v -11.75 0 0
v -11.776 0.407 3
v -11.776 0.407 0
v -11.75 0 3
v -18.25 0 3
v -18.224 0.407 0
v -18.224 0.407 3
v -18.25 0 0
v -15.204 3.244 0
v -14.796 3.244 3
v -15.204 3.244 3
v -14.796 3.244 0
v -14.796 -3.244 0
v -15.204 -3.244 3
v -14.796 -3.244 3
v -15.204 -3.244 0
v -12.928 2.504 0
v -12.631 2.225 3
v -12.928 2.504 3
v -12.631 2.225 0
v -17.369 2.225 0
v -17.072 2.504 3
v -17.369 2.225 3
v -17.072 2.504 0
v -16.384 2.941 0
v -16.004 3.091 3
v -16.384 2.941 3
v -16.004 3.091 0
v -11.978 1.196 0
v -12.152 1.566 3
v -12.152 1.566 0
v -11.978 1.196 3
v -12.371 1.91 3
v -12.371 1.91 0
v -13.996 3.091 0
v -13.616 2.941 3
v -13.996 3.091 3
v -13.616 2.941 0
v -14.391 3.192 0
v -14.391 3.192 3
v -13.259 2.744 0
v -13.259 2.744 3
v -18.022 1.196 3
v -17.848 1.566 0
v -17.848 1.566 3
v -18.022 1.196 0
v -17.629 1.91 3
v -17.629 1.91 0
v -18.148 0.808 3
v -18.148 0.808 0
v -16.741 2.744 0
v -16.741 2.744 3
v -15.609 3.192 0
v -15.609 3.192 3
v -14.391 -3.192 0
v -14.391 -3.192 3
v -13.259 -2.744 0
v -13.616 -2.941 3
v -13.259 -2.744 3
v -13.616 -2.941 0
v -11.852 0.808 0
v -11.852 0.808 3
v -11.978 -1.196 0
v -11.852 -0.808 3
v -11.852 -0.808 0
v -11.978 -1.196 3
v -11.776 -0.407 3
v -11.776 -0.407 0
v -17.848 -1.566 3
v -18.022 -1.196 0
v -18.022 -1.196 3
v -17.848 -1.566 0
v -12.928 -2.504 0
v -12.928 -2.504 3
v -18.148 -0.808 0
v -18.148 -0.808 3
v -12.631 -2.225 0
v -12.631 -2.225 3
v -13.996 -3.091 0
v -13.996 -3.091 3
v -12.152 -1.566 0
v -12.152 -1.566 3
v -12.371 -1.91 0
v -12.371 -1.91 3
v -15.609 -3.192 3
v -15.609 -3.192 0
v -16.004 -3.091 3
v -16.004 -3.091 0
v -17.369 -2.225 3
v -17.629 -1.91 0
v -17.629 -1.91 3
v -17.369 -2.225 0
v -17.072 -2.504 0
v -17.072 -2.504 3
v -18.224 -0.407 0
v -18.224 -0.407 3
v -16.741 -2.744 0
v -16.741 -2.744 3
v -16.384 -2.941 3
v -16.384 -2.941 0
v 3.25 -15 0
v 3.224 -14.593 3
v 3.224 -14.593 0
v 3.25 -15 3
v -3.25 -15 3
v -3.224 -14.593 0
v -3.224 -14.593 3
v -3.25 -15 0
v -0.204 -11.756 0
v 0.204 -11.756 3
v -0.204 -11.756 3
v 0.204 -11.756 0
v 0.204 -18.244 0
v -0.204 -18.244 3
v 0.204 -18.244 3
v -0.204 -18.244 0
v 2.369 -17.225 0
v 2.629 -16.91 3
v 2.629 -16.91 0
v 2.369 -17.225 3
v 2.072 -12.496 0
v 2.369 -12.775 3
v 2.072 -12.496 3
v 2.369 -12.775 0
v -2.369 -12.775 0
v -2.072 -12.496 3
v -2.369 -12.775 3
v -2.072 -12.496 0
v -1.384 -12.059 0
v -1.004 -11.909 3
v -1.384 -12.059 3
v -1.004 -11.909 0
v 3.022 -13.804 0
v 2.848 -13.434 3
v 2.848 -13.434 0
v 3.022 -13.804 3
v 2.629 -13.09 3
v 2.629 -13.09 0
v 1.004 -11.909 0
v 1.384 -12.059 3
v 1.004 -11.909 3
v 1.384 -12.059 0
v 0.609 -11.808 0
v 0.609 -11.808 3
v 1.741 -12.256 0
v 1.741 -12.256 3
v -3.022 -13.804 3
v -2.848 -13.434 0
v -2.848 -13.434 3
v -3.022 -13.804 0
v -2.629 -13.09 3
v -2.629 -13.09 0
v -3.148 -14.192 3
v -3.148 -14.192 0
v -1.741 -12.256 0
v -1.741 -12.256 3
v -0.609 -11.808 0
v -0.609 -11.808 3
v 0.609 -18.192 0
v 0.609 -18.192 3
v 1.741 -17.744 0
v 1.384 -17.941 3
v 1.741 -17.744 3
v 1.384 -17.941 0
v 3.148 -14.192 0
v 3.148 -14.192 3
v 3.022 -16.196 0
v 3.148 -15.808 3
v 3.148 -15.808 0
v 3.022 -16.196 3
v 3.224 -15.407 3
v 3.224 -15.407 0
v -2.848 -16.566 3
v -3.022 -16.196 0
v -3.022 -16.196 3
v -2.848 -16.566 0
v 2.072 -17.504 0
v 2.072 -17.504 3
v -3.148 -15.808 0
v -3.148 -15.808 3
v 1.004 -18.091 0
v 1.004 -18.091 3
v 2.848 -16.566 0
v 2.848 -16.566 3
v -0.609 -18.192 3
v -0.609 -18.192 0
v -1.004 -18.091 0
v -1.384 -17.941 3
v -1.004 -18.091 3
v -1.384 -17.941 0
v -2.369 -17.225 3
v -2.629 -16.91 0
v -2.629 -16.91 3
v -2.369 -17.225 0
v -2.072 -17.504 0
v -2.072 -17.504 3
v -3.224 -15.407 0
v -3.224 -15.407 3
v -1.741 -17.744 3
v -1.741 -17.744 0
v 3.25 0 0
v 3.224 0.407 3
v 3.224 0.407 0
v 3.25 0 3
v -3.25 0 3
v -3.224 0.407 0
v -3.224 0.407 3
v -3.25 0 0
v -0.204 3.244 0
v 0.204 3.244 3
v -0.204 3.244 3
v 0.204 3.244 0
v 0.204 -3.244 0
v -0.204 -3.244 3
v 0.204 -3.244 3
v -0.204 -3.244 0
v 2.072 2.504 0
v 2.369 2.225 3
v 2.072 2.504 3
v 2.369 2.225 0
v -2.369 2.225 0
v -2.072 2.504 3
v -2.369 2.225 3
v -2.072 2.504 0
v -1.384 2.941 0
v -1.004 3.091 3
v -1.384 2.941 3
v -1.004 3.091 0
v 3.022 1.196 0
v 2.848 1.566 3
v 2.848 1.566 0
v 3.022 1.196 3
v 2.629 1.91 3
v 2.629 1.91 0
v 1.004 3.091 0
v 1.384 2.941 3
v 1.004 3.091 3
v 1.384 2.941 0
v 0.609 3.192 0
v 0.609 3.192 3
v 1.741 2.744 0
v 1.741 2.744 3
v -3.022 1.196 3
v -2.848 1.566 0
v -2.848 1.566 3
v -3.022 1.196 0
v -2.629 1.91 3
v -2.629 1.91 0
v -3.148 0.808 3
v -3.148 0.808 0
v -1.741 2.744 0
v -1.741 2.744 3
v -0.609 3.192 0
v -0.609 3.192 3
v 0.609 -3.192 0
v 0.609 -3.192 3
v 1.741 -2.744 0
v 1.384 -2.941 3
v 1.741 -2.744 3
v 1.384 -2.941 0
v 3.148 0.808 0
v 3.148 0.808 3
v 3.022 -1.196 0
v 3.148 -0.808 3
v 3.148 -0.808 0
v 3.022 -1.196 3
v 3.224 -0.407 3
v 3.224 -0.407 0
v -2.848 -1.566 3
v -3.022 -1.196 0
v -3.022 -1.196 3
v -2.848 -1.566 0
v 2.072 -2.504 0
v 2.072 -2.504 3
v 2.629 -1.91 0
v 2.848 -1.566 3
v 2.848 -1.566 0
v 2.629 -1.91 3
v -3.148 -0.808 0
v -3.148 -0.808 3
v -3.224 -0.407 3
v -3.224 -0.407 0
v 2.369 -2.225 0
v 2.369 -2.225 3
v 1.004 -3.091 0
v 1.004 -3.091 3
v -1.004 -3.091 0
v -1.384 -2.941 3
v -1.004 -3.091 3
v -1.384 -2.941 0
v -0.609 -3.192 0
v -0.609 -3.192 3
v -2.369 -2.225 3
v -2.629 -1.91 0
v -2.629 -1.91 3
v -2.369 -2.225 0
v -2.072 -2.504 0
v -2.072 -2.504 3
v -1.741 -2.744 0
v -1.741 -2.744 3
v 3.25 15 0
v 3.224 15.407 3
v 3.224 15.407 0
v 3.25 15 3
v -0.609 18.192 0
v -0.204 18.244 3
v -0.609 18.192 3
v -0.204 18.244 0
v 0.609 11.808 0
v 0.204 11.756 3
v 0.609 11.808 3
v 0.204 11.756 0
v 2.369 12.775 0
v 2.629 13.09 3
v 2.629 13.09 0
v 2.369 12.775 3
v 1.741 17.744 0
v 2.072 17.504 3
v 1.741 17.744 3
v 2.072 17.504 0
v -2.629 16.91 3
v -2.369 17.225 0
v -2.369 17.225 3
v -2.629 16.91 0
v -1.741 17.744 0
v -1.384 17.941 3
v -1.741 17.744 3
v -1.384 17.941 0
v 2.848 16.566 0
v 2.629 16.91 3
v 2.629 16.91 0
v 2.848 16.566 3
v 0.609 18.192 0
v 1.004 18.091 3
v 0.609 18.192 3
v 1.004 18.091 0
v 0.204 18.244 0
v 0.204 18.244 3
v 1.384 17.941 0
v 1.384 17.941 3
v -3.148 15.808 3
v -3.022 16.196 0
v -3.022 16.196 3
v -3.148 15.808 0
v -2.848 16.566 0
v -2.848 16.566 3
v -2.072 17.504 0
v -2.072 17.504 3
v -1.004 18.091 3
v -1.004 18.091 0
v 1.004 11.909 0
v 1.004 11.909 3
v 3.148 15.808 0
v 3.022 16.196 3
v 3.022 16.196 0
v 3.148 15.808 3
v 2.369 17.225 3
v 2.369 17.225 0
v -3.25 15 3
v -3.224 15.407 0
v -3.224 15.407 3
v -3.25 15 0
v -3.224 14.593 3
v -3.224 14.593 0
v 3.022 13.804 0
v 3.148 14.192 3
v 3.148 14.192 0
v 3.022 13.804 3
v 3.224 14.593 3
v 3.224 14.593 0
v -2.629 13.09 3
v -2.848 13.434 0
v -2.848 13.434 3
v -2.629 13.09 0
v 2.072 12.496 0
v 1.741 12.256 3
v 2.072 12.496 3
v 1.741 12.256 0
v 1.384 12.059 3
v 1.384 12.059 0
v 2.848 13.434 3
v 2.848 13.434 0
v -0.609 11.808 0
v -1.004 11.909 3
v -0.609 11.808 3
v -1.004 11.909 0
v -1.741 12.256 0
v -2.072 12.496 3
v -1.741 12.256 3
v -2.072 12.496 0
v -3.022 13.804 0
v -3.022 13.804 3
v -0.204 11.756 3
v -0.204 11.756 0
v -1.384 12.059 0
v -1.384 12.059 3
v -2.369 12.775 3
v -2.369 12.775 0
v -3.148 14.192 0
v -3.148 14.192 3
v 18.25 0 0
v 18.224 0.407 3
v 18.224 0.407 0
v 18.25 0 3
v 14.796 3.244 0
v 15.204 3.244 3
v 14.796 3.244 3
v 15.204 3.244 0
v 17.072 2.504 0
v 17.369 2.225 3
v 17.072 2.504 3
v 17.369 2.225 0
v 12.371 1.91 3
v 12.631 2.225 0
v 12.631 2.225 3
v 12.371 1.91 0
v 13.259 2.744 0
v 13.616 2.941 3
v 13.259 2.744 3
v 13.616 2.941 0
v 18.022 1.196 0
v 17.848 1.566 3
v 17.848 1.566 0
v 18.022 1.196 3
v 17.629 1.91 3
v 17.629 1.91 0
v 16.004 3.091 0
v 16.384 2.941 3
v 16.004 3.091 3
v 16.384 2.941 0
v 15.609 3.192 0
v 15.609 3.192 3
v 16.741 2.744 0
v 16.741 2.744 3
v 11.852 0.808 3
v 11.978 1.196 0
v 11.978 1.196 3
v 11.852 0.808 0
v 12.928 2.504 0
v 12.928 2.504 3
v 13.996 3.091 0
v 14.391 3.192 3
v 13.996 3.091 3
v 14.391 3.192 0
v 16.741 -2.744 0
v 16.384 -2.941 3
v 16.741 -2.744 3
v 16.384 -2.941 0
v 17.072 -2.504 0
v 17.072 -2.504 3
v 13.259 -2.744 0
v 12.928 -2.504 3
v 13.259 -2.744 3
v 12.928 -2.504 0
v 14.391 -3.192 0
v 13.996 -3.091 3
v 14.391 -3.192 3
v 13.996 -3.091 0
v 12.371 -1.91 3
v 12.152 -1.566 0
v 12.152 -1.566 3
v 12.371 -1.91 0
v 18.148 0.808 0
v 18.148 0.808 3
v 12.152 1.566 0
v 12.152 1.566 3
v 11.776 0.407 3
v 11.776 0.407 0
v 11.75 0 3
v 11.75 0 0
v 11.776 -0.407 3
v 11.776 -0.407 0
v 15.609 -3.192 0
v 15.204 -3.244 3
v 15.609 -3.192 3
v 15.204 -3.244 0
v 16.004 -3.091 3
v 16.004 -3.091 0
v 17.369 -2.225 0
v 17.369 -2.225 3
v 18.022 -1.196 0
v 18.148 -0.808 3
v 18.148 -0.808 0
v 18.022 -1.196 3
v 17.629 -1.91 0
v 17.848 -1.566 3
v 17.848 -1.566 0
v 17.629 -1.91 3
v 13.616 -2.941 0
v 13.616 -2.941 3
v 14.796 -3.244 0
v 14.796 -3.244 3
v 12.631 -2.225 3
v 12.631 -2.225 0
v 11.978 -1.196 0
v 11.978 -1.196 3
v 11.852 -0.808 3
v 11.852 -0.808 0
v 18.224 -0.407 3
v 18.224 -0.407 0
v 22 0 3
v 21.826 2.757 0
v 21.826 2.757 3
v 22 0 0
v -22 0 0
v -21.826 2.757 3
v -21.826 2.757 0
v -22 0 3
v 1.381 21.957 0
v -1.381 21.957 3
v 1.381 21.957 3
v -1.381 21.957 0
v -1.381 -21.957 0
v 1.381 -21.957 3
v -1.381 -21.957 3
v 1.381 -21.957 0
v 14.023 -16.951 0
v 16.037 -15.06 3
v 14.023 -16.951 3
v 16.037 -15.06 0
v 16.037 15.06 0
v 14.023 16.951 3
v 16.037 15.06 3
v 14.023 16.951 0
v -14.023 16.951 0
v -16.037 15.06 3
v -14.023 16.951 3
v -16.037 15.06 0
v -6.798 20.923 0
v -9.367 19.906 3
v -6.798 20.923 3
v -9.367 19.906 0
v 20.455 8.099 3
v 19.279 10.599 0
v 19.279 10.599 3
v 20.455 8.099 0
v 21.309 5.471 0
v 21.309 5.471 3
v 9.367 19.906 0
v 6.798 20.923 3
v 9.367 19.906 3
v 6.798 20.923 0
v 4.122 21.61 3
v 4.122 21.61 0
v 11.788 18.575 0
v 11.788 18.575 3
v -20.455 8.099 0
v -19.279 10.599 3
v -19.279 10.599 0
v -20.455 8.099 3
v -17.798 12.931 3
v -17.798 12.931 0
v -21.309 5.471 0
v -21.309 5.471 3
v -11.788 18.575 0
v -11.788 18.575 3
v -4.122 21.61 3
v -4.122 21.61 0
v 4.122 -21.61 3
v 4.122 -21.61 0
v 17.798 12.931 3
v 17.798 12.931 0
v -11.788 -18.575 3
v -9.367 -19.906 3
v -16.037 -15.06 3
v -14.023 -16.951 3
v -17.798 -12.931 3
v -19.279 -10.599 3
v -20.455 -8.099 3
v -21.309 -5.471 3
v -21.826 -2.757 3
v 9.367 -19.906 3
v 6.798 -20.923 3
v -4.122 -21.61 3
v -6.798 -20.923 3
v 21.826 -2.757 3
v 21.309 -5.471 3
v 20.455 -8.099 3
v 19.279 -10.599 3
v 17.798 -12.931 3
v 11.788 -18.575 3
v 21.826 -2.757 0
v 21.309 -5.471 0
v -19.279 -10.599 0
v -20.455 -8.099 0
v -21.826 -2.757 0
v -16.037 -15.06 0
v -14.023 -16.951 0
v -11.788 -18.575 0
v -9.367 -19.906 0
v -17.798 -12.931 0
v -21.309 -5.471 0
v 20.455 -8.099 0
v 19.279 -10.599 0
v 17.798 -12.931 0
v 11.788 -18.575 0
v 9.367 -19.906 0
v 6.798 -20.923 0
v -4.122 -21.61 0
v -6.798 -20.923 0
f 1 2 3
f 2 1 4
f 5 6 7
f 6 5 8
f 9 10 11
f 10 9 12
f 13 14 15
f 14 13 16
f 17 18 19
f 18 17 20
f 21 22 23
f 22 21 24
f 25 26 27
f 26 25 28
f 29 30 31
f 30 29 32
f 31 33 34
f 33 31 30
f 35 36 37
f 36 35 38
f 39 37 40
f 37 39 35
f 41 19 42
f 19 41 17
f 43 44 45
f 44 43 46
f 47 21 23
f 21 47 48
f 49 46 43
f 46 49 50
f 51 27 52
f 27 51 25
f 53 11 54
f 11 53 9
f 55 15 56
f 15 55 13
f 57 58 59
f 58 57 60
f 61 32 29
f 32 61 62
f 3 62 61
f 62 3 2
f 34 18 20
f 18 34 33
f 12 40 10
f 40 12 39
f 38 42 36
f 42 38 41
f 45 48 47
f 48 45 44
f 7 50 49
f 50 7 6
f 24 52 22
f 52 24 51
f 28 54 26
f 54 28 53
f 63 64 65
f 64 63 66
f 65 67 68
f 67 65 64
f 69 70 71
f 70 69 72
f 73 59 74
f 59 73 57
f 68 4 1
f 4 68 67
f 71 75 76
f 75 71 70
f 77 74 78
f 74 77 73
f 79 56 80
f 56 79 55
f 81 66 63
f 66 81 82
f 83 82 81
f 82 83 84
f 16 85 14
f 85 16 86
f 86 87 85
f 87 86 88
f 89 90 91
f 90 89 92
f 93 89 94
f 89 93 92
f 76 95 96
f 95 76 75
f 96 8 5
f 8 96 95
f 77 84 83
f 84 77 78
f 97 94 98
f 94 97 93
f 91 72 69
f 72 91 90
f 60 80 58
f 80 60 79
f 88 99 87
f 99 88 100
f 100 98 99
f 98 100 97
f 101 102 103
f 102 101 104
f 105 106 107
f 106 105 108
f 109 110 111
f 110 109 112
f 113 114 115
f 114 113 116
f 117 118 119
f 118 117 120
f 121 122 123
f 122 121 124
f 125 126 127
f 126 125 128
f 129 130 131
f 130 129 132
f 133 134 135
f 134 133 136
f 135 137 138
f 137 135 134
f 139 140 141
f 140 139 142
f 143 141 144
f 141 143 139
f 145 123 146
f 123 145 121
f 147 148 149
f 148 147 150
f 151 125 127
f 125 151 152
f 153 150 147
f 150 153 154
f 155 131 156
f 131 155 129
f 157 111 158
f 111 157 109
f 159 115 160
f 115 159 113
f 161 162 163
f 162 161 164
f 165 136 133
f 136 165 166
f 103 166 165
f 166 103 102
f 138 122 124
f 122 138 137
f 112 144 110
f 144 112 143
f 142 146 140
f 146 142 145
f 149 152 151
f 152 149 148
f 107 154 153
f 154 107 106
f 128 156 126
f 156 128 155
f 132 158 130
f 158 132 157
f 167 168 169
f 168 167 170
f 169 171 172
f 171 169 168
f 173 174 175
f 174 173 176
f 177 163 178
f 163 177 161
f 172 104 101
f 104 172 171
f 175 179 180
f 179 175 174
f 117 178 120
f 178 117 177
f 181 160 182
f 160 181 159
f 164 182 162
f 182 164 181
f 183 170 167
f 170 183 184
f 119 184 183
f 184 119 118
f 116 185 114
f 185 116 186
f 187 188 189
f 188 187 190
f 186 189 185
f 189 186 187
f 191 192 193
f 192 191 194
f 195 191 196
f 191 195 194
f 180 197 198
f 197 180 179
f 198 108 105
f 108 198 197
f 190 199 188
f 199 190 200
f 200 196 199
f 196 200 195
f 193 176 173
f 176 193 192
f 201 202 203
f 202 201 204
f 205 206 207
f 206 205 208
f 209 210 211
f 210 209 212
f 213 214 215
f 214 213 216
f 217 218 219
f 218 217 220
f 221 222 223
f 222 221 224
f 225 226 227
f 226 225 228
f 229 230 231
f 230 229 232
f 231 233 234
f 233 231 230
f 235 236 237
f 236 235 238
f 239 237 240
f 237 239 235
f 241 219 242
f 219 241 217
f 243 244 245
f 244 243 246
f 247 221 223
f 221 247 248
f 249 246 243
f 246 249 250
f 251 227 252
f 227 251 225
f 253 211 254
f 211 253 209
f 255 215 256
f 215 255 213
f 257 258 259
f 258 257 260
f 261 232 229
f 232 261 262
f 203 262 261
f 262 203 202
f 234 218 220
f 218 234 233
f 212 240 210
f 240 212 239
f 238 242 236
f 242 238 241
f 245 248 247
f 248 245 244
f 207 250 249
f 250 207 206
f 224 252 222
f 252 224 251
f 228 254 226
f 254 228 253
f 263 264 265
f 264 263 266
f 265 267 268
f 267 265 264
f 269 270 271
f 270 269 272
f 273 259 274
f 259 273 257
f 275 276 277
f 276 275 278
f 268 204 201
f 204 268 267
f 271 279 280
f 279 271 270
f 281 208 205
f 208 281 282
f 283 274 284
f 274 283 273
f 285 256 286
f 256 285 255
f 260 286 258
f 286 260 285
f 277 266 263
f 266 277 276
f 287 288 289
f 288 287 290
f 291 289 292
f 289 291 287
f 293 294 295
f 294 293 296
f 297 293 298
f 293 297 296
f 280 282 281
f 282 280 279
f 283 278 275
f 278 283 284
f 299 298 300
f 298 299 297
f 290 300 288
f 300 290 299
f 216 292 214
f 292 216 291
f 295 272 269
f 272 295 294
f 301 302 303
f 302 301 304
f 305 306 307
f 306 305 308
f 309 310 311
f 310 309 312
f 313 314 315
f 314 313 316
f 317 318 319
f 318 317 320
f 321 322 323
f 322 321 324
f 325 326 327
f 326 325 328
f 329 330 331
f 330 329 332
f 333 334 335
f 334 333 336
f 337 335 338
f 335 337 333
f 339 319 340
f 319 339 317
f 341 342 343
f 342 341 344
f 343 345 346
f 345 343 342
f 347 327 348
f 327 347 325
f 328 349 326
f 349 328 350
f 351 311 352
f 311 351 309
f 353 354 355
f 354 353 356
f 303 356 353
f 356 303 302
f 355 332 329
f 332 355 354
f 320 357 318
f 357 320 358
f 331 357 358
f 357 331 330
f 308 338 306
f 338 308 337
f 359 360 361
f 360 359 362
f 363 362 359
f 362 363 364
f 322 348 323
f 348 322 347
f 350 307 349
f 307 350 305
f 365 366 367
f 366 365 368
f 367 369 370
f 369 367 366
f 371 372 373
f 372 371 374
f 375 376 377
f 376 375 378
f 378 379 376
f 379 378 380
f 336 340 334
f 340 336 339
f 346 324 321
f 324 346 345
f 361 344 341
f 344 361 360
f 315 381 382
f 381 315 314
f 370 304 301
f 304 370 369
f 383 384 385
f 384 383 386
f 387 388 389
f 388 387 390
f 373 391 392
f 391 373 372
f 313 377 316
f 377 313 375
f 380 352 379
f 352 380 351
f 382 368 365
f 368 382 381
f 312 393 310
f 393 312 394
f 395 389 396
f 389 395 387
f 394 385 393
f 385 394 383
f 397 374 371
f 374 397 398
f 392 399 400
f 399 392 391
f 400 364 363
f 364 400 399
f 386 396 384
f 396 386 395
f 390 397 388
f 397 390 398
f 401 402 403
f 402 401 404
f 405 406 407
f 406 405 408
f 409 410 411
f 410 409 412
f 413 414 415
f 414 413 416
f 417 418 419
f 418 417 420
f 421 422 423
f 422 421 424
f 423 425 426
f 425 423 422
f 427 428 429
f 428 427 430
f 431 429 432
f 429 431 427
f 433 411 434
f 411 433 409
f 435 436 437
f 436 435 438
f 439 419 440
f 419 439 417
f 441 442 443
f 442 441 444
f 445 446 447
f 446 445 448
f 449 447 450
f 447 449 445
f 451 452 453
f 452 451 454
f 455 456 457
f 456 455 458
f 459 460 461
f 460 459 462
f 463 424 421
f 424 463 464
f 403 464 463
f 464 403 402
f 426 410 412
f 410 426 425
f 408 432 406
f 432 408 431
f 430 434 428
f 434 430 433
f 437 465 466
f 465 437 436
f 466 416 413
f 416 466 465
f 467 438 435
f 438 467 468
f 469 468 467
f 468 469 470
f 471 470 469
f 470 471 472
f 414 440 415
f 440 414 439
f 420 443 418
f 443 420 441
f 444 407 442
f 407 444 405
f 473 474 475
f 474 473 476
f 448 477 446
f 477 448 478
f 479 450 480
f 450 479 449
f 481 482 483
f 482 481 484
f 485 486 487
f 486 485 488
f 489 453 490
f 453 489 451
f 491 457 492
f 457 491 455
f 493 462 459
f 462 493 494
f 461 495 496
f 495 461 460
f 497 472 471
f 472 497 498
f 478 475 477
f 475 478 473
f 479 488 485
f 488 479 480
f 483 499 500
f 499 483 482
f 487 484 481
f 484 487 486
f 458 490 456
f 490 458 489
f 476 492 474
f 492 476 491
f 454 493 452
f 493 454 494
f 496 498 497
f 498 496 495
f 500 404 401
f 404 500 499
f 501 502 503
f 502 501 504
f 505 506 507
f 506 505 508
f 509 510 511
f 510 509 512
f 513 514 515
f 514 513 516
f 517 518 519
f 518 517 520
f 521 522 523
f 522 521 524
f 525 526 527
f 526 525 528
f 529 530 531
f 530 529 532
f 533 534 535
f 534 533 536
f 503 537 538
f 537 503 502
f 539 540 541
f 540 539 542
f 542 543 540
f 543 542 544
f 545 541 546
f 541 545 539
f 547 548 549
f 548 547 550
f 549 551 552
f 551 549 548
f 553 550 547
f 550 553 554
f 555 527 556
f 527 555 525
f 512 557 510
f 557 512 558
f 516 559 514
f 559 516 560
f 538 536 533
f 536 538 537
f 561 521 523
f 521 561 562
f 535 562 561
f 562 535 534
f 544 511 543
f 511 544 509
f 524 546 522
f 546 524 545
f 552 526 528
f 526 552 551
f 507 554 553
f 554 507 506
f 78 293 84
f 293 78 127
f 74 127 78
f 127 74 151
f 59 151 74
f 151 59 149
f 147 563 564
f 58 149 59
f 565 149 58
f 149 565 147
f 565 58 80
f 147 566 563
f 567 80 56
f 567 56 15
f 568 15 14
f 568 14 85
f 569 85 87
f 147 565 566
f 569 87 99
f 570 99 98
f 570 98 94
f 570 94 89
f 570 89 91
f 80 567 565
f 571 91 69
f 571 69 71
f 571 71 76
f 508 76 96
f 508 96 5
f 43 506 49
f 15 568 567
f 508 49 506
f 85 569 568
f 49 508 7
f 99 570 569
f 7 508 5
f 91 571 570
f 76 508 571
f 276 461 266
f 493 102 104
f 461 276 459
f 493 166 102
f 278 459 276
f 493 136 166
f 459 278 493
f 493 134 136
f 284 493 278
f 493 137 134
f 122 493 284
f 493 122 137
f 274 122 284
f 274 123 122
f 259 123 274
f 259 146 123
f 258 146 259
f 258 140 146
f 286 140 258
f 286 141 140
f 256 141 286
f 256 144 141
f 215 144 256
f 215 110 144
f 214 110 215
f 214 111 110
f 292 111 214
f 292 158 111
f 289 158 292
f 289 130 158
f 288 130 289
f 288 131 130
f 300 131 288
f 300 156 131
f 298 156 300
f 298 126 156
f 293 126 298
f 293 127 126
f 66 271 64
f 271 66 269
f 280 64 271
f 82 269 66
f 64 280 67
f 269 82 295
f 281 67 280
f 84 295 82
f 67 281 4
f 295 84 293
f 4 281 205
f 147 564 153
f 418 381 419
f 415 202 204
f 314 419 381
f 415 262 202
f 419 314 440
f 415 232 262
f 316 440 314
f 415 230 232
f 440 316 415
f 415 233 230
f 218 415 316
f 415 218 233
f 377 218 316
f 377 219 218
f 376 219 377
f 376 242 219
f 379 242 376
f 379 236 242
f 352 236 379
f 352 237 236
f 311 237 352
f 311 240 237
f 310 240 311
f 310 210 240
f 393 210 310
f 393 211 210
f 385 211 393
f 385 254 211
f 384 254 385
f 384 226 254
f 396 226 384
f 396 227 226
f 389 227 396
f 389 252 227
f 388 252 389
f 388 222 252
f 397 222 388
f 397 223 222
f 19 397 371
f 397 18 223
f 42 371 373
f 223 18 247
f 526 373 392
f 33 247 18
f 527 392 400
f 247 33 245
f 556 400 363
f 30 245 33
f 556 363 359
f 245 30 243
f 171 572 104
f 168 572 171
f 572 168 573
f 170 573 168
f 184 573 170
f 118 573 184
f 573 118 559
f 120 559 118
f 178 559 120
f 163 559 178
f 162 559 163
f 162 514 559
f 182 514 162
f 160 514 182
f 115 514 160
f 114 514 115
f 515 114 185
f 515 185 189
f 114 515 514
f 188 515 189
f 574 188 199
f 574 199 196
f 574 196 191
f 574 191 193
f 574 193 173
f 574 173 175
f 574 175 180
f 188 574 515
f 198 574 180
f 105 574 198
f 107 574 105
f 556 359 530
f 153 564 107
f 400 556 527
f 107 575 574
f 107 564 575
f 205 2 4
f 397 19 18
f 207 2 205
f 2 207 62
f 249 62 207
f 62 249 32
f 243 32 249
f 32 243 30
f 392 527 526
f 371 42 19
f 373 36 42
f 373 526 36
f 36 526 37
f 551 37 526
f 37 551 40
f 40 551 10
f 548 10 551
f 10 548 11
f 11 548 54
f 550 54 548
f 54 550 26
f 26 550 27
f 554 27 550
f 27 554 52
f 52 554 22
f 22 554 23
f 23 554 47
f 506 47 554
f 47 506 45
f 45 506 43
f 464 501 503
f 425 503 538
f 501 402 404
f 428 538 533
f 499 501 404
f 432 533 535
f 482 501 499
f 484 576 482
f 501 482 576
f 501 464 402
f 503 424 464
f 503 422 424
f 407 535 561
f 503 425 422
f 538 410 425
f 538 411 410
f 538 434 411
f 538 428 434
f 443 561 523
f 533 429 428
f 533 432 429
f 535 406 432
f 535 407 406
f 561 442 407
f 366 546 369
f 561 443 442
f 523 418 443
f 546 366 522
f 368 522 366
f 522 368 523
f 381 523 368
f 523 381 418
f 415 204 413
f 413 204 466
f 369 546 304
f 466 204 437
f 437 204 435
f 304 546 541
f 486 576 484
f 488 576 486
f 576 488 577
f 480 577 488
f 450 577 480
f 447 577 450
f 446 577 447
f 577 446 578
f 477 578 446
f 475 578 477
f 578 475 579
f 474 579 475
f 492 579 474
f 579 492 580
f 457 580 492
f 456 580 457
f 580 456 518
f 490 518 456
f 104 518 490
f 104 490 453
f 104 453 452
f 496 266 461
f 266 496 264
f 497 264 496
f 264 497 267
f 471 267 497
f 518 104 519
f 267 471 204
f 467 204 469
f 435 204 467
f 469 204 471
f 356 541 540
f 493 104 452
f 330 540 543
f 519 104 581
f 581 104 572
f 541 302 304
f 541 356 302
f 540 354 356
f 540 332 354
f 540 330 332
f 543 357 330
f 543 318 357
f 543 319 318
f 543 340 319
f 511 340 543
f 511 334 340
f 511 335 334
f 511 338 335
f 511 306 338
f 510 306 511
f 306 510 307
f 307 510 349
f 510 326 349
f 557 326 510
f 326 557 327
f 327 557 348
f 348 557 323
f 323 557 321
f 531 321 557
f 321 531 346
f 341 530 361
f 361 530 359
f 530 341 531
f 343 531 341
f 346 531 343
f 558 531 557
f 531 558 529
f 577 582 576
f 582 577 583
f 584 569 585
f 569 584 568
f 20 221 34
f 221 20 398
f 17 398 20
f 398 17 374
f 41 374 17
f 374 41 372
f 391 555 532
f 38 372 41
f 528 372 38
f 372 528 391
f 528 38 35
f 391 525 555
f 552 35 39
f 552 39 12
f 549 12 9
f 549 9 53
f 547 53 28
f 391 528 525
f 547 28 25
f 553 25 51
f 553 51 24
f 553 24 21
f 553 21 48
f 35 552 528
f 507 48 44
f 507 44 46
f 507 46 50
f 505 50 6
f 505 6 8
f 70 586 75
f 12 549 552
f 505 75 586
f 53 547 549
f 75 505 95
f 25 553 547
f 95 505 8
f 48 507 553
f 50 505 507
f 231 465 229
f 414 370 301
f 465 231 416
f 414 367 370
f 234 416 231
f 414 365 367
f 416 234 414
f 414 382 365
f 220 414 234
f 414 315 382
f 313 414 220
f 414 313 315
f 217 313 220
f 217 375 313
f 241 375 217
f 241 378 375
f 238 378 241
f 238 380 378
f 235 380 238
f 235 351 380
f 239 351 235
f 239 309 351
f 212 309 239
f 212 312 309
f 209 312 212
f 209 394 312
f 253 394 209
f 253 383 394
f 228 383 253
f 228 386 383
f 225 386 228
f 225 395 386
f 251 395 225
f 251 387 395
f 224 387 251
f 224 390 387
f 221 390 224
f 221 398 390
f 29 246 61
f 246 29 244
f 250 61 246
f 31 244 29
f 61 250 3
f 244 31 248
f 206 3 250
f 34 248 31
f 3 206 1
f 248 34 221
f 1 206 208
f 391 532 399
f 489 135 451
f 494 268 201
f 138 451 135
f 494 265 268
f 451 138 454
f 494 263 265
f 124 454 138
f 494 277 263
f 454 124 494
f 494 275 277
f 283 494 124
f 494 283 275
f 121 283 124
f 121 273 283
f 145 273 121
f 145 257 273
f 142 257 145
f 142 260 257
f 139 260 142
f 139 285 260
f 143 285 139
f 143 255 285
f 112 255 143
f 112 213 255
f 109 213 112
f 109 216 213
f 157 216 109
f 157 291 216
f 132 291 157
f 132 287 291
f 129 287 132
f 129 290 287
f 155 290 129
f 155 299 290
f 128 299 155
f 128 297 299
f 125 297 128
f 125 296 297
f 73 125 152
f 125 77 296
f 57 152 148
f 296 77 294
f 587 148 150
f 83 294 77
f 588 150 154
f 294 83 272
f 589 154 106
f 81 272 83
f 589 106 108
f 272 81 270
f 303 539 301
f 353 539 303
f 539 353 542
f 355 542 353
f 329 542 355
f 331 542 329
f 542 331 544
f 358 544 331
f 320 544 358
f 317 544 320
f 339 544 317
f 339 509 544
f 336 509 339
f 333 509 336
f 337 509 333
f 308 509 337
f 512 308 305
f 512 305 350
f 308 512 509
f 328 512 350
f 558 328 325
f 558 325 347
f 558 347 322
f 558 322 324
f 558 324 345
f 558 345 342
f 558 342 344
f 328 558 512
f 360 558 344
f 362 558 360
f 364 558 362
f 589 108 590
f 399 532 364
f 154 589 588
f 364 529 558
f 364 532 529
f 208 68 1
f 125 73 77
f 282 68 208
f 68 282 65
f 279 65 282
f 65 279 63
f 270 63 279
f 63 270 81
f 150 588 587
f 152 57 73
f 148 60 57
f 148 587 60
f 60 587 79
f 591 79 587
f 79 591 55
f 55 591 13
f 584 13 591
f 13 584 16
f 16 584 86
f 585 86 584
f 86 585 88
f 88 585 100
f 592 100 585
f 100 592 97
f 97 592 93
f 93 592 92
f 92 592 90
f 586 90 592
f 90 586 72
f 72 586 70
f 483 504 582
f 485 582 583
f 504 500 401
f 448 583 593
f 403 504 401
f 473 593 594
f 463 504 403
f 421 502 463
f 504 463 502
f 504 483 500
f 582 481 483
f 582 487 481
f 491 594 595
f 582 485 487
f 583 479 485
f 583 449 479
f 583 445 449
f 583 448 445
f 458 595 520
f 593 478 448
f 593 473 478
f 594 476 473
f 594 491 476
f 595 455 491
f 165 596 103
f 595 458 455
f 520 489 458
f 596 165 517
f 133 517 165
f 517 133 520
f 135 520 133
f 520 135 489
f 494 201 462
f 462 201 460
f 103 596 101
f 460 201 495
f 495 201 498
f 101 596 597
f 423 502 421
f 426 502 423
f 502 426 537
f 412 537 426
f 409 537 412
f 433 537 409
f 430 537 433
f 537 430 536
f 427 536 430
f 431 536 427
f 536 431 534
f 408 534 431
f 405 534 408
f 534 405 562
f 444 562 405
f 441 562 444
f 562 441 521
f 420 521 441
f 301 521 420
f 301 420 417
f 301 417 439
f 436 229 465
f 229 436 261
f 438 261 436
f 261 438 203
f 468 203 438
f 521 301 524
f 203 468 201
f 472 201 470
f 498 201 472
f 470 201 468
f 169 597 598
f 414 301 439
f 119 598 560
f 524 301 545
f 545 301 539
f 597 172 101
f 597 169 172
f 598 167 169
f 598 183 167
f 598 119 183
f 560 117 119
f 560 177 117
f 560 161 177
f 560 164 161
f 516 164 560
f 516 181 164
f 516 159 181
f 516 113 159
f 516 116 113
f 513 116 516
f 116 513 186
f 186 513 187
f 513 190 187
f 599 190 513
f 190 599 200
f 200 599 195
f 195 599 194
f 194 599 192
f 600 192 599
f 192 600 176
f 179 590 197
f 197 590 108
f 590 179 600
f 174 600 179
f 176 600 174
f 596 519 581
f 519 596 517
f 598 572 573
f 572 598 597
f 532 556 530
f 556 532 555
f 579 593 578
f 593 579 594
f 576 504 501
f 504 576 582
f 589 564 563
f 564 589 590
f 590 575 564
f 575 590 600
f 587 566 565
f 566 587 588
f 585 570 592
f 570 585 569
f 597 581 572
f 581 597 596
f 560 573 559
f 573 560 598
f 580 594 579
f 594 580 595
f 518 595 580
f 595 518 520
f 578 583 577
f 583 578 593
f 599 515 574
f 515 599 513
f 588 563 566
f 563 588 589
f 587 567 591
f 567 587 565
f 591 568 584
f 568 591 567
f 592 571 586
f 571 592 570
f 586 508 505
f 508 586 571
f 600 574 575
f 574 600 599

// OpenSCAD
// Generated by SolidPython 1.1.3 on 2023-03-02 20:11:46
$fn = 50;


difference() {
	union() {
		translate(v = [0, 0, 0]) {
			rotate(a = [0, 0, 0]) {
				cylinder(h = 3, r = 22.0000000000);
			}
		}
	}
	union() {
		translate(v = [-15.0000000000, 0.0000000000, 0]) {
			rotate(a = [0, 0, 0]) {
				translate(v = [0, 0, -50]) {
					rotate(a = [0, 0, 0]) {
						cylinder(h = 100, r = 3.2500000000);
					}
				}
			}
		}
		translate(v = [0.0000000000, -15.0000000000, 0]) {
			rotate(a = [0, 0, 0]) {
				translate(v = [0, 0, -50]) {
					rotate(a = [0, 0, 0]) {
						cylinder(h = 100, r = 3.2500000000);
					}
				}
			}
		}
		translate(v = [0.0000000000, 0.0000000000, 0]) {
			rotate(a = [0, 0, 0]) {
				translate(v = [0, 0, -50]) {
					rotate(a = [0, 0, 0]) {
						cylinder(h = 100, r = 3.2500000000);
					}
				}
			}
		}
		translate(v = [0.0000000000, 15.0000000000, 0]) {
			rotate(a = [0, 0, 0]) {
				translate(v = [0, 0, -50]) {
					rotate(a = [0, 0, 0]) {
						cylinder(h = 100, r = 3.2500000000);
					}
				}
			}
		}
		translate(v = [15.0000000000, 0.0000000000, 0]) {
			rotate(a = [0, 0, 0]) {
				translate(v = [0, 0, -50]) {
					rotate(a = [0, 0, 0]) {
						cylinder(h = 100, r = 3.2500000000);
					}
				}
			}
		}
	}
}
/***********************************************
*********      SolidPython code:      **********
************************************************
 
from solid import *
import os
import subprocess

import oomB

import opsc_library_gen

mode = "laser"
#mode = "3d_print"

defined_objects = {}

radius_dict = {}
countersunk_dict = {}


def set_mode(m):
    global mode
    mode = m
    radius_dict['M6'] = 6.5/2
    radius_dict['M3'] = 3.3/2
    if mode == "laser":
        radius_dict['M6'] = 6/2
        radius_dict['M3'] = 3/2

    countersunk_dict['M3'] = {}
    countersunk_dict['M3']['little_rad'] = radius_dict['M3']
    countersunk_dict['M3']['big_rad'] = (5.5+0.6)/2
    if mode == "laser":
        countersunk_dict['M3']['big_rad'] = (4.75+0.6)/2
        countersunk_dict['M3']['little_rad'] = (4.75+0.6)/2

    countersunk_dict['M3']['height'] = 1.7


def opsc_make_object(filename, objects, save_type="none",resolution=50, layers = 1, tilediff = 200, mode="laser", overwrite=True):
    if overwrite or not os.path.exists(filename):
        set_mode(mode)
        save_type = save_type.lower()
        os.makedirs(os.path.dirname(filename), exist_ok=True)
        final_object = opsc_get_object(objects)
        # Save the final object to the specified filename    
        scad_render_to_file(final_object, filename, file_header='$fn = %s;' % resolution, include_orig_code=True)
        if mode == "laser":
            filename_laser = filename.replace(".scad","-flat.scad")
            scad_render_to_file(getLaser(final_object, layers=layers, tilediff=tilediff), filename_laser, file_header='$fn = %s;' % resolution, include_orig_code=True)
            if save_type == "all":
                saveToAll(filename_laser)
            elif save_type == "dxf":
                saveToDxf(filename_laser)
        if save_type == "all":
            saveToAll(filename)
        elif save_type == "dxf":
            saveToDxf(filename)


def opsc_get_object(objects):
    # Create the solidpython objects
    positive_objects = [get_opsc_item(obj) for obj in objects if obj['type'] == 'positive']
    negative_objects = [get_opsc_item(obj) for obj in objects if obj['type'] == 'negative']
    # Union the positive objects
    positive_object = union()(*positive_objects)
    # Union the negative objects
    negative_object = union()(*negative_objects)
    # Create the final object by subtracting the negative objects from the positive objects
    return difference()(positive_object, negative_object)

def get_opsc_item(params):
    # A dictionary to map radius string values to numerical values
    #radius_dict = {'small': 5, 'medium': 10, 'large': 15}
    # An array of function names for basic shapes
    basic_shapes = ['cube', 'sphere', 'cylinder']
    
    # An array of function names for other shapes
    other_shapes = ['hole', 'slot', 'rounded_rectangle', 'countersunk']
    


    # Convert radius to r if present, and remove radius from the params dictionary
    if 'radius' in params:
        if isinstance(params['radius'], str):
            # Use the radius_dict to map the radius string value to a numerical value
            params['r'] = radius_dict[params['radius']]
        else:
            params['r'] = params['radius']
        del params['radius']
    

    # Check if the object type is a basic shape
    if params['shape'] in basic_shapes:
        # Remove shape and unexpected dictionary values
        allowed_keys = {'size', 'r', 'r1', 'r2', 'd', 'h', 'rw', 'rh', 'dw', 'dh'}
        shape_params = {k: v for k, v in params.items() if k in allowed_keys}

        # Call the corresponding function for the shape parameter, using ** notation to pass the shape_params dictionary as keyword arguments
        return get_opsc_transform(params,globals()[params['shape']](**shape_params))
    
    # If the object type is not a basic shape, check if it's a defined object or one of the other shapes
    elif params['shape'] in other_shapes:
        # Call the corresponding function for the shape parameter, passing the params dictionary as an argument
        p2 = copy.deepcopy(params)
        p2["pos"] = [0,0,0]
        return get_opsc_transform(params,globals()[params['shape']](p2))
    
    # If the object is not a basic shape or a defined object, try to import it from a .scad file
    else:
        obj = defined_objects[params['shape']]
        return get_opsc_transform(params,obj)

def get_opsc_transform(params, solid_obj):
    # Rotate the object based on the 'rot' field in the params dictionary, or the 'rotX', 'rotY', and 'rotZ' fields if 'rot' is not present
    rot = params.get('rot', [])
    if rot:
        rotX, rotY, rotZ = rot
    else:
        rotX = params.get('rotX', 0)
        rotY = params.get('rotY', 0)
        rotZ = params.get('rotZ', 0)
    solid_obj = rotate([rotX, rotY, rotZ])(solid_obj)

    # Translate the object based on the 'pos' field in the params dictionary, or the 'x', 'y', and 'z' fields if 'pos' is not present
    pos = params.get('pos', [])
    if pos:
        x, y, z = pos
    else:
        x = params.get('x', 0)
        y = params.get('y', 0)
        z = params.get('z', 0)
    solid_obj = translate([x, y, z])(solid_obj)
    return solid_obj


import random

def opsc_easy_array(type, shape, repeats, pos_start, shift_arr, **kwargs):
    for i in range(0,3):
        repeats.append(1)
        pos_start.append(0)
        shift_arr.append(0)
    return_objects = []

    for x in range(0,repeats[0]):
        for y in range(0,repeats[1]):
            for z in range(0,repeats[2]):
                return_objects.append(opsc_easy(type, shape, pos=[pos_start[0]+x*shift_arr[0],pos_start[1]+y*shift_arr[1],pos_start[2]+z*shift_arr[2]], **kwargs))
    return return_objects                



def opsc_easy(type, shape, **kwargs):
    obj = {
        'type': type,
        'shape': shape
    }
    for param in ['size', 'r', 'r1', 'r2', 'd', 'h', 'rw', 'rh', 'dw', 'dh', 'pos', 'x', 'y', 'z', 'rot', 'rotX', 'rotY', 'rotZ', "w"]:
        if param in kwargs:
            obj[param] = kwargs[param]
    return obj

def hole(params):
    p2 = copy.deepcopy(params)  
    # Check if the radius is a string and replace it with the corresponding value from the dictionary
    if isinstance(p2['r'], str):
        p2['r'] = radius_dict[p2['r']]
    
    # Set the height to 100 if not specified
    if 'h' not in p2:
        p2['h'] = 100
        p2["pos"] = [0,0,-50]
    p2["center"] = True
    # Create the cylinder object
    p2["shape"] = "cylinder"
    p2["type"] = "positive"

    return get_opsc_item(p2)

import copy

def countersunk(params):
    p2 = copy.deepcopy(params)
    counter_rad = p2['r']
    p2['r'] = radius_dict[p2['r']]
    hp = copy.deepcopy(p2)
    hp["type"] = "positive"
    hp["shape"] = "hole"
    del hp["rot"]
    hol = get_opsc_item(hp)
    
    cp = copy.deepcopy(p2)
    cp["h"] = countersunk_dict[counter_rad]["height"]
    cp["r2"] = countersunk_dict[counter_rad]["little_rad"]
    cp["r1"] = countersunk_dict[counter_rad]["big_rad"]
    del cp["r"]
    del cp["rot"]
    cp["type"] = "positive"
    cp["shape"] = "cylinder"
    cp["pos"] = [0,0,0]

    top = get_opsc_item(cp)
    return union()(hol,top)



def slot(params):  
    p2 = copy.deepcopy(params) 
    if isinstance(p2['r'], str):
        p2['r'] = radius_dict[p2['r']]
    p2["type"] = "positive"
    p2["shape"] = "hole"
    del p2["rot"]
    p2["pos"] = [0,0,0]
    left = copy.deepcopy(p2)
    right = copy.deepcopy(p2)
    left["pos"][0] = p2["w"] / 2 - p2["r"] 
    
    right["pos"][0] = -p2["w"] / 2 + p2["r"] 
    pass
    leftObj = get_opsc_item(left)
    rightObj = get_opsc_item(right)
    return hull()(leftObj, rightObj)

def rounded_rectangle(params):   
    p2 = copy.deepcopy(params) 
    p2["h"] = p2["size"][2]
    p2["pos"] = p2.get("pos", [0, 0, 0]) 
    p2["type"] = "positive"
    p2["shape"] = "hole"
    p2["pos"] = [0,0,0]
    
    if 'rot' in p2:
        del p2["rot"]   
    if 'r' not in p2:
        p2["r"] = 5 
    tl = copy.deepcopy(p2)
    tr = copy.deepcopy(p2)
    bl = copy.deepcopy(p2)
    br = copy.deepcopy(p2)
    tl["pos"][0] = -(p2["size"][0] - p2["r"]*2)/2
    tl["pos"][1] = (p2["size"][1] - p2["r"]*2)/2
    tr["pos"][0] = (p2["size"][0] - p2["r"]*2)/2
    tr["pos"][1] = (p2["size"][1] - p2["r"]*2)/2
    bl["pos"][0] = -(p2["size"][0] - p2["r"]*2)/2
    bl["pos"][1] = -(p2["size"][1] - p2["r"]*2)/2
    br["pos"][0] = (p2["size"][0] - p2["r"]*2)/2
    br["pos"][1] = -(p2["size"][1] - p2["r"]*2)/2
    del tl["size"]
    del tr["size"]
    del bl["size"]
    del br["size"]
    tlo = get_opsc_item(tl)
    tro = get_opsc_item(tr)
    blo = get_opsc_item(bl)
    bro = get_opsc_item(br)    
    return hull()(tlo, tro, blo, bro)



def import_scad_object(filename):
    # Import the .scad file and convert it to a solidpython object
    #filename = "parts"
    obj = import_scad(filename)
    return obj.main()
    


import os
import solid as solidpython

# A dictionary to store the defined objects


def load_scad_objects():
    opsc_library_gen.gen_library(defined_objects)

import random

def test(num_objects):
    objects = []
    for i in range(num_objects):
        # Choose a random shape
        #shape = random.choice(['cube', 'sphere', 'cylinder', 'hole', 'slot', "rounded_rectangle"])
        shape = random.choice(["rounded_rectangle"])

        # Choose a random type
        type = random.choice(['positive', 'negative'])
        
        # Create an empty object dictionary
        obj = {'shape': shape, 'type': type}
        
        # Set shape-specific parameters
        if obj['shape'] in ['cube']:
            obj['size'] =  [random.uniform(5, 15), random.uniform(5, 15), random.uniform(5, 15)]
        if obj['shape'] in ['rounded_rectangle']:
            obj['size'] =  [random.uniform(5, 15), random.uniform(5, 15), random.uniform(5, 15)]
            obj['r'] = random.uniform(0.5, 5)
        elif obj['shape'] == 'sphere':
            obj['r'] = random.uniform(5, 15)
        elif obj['shape'] in ['cylinder', 'hole']:
            obj['r'] = random.uniform(0.5, 5)
            obj['h'] = random.uniform(5, 15)
        elif obj['shape'] == 'slot':
            obj['r'] = random.uniform(0.5, 5)
            obj['h'] = random.uniform(5, 15)
            obj['w'] = random.uniform(5, 15)
        
        # Set a random position and rotation
        obj['pos'] = [random.uniform(-20, 20), random.uniform(-20, 20), random.uniform(-20, 20)]
        obj['rot'] = [random.uniform(-180, 180), random.uniform(-180, 180), random.uniform(-180, 180)]
        
        # Add the object to the list
        objects.append(obj)
    return objects

####### old file saving
def saveToAll(fileIn):
    saveToDxf(fileIn)
    saveToPng(fileIn)
    saveToStl(fileIn)
    saveToSvg(fileIn)

def saveToDxf(fileIn, fileOut="", copy_to_laser=True):
    if fileOut == "":
        fileOut = fileIn.replace(".scad",".dxf")
    saveToFile(fileIn, fileOut)


    
def saveToPng(fileIn, fileOut="",extra="--render"):
    if fileOut == "":
        fileOut = fileIn.replace(".scad",".png")
    saveToFile(fileIn, fileOut)

def saveToStl(fileIn, fileOut=""):
    if fileOut == "":
        fileOut = fileIn.replace(".scad",".stl")
    saveToFile(fileIn, fileOut)
    
def saveToSvg(fileIn, fileOut=""):
    if fileOut == "":
        fileOut = fileIn.replace(".scad",".svg")
    saveToFile(fileIn, fileOut)

def saveToFile(fileIn, fileOut,extra=""):
    #extra = extra + " --colorscheme Tomorrow"

    launchStr = 'openscad -o "' + fileOut + '"' + extra + ' "' + fileIn + '"'
    if ".png" in fileOut:
        launchStr = launchStr + " --render"
    print("            saveToFile launch string: " + launchStr)
    subprocess.run(launchStr)
    x=0

def getLaser(final_object,start=1.5,layers=1,thickness=3,tilediff=200):
        rv= []

        for x in range(layers):
            rv.append(translate([0,x*tilediff,0])(
                    projection()(
                        intersection()(translate([-500,-500,start+x*thickness])(cube(size=[1000,1000,0.1])),
                            final_object
                        )
                    )
            )
            )
            
        return union()(rv)

set_mode("laser")
load_scad_objects() 
 
************************************************/
